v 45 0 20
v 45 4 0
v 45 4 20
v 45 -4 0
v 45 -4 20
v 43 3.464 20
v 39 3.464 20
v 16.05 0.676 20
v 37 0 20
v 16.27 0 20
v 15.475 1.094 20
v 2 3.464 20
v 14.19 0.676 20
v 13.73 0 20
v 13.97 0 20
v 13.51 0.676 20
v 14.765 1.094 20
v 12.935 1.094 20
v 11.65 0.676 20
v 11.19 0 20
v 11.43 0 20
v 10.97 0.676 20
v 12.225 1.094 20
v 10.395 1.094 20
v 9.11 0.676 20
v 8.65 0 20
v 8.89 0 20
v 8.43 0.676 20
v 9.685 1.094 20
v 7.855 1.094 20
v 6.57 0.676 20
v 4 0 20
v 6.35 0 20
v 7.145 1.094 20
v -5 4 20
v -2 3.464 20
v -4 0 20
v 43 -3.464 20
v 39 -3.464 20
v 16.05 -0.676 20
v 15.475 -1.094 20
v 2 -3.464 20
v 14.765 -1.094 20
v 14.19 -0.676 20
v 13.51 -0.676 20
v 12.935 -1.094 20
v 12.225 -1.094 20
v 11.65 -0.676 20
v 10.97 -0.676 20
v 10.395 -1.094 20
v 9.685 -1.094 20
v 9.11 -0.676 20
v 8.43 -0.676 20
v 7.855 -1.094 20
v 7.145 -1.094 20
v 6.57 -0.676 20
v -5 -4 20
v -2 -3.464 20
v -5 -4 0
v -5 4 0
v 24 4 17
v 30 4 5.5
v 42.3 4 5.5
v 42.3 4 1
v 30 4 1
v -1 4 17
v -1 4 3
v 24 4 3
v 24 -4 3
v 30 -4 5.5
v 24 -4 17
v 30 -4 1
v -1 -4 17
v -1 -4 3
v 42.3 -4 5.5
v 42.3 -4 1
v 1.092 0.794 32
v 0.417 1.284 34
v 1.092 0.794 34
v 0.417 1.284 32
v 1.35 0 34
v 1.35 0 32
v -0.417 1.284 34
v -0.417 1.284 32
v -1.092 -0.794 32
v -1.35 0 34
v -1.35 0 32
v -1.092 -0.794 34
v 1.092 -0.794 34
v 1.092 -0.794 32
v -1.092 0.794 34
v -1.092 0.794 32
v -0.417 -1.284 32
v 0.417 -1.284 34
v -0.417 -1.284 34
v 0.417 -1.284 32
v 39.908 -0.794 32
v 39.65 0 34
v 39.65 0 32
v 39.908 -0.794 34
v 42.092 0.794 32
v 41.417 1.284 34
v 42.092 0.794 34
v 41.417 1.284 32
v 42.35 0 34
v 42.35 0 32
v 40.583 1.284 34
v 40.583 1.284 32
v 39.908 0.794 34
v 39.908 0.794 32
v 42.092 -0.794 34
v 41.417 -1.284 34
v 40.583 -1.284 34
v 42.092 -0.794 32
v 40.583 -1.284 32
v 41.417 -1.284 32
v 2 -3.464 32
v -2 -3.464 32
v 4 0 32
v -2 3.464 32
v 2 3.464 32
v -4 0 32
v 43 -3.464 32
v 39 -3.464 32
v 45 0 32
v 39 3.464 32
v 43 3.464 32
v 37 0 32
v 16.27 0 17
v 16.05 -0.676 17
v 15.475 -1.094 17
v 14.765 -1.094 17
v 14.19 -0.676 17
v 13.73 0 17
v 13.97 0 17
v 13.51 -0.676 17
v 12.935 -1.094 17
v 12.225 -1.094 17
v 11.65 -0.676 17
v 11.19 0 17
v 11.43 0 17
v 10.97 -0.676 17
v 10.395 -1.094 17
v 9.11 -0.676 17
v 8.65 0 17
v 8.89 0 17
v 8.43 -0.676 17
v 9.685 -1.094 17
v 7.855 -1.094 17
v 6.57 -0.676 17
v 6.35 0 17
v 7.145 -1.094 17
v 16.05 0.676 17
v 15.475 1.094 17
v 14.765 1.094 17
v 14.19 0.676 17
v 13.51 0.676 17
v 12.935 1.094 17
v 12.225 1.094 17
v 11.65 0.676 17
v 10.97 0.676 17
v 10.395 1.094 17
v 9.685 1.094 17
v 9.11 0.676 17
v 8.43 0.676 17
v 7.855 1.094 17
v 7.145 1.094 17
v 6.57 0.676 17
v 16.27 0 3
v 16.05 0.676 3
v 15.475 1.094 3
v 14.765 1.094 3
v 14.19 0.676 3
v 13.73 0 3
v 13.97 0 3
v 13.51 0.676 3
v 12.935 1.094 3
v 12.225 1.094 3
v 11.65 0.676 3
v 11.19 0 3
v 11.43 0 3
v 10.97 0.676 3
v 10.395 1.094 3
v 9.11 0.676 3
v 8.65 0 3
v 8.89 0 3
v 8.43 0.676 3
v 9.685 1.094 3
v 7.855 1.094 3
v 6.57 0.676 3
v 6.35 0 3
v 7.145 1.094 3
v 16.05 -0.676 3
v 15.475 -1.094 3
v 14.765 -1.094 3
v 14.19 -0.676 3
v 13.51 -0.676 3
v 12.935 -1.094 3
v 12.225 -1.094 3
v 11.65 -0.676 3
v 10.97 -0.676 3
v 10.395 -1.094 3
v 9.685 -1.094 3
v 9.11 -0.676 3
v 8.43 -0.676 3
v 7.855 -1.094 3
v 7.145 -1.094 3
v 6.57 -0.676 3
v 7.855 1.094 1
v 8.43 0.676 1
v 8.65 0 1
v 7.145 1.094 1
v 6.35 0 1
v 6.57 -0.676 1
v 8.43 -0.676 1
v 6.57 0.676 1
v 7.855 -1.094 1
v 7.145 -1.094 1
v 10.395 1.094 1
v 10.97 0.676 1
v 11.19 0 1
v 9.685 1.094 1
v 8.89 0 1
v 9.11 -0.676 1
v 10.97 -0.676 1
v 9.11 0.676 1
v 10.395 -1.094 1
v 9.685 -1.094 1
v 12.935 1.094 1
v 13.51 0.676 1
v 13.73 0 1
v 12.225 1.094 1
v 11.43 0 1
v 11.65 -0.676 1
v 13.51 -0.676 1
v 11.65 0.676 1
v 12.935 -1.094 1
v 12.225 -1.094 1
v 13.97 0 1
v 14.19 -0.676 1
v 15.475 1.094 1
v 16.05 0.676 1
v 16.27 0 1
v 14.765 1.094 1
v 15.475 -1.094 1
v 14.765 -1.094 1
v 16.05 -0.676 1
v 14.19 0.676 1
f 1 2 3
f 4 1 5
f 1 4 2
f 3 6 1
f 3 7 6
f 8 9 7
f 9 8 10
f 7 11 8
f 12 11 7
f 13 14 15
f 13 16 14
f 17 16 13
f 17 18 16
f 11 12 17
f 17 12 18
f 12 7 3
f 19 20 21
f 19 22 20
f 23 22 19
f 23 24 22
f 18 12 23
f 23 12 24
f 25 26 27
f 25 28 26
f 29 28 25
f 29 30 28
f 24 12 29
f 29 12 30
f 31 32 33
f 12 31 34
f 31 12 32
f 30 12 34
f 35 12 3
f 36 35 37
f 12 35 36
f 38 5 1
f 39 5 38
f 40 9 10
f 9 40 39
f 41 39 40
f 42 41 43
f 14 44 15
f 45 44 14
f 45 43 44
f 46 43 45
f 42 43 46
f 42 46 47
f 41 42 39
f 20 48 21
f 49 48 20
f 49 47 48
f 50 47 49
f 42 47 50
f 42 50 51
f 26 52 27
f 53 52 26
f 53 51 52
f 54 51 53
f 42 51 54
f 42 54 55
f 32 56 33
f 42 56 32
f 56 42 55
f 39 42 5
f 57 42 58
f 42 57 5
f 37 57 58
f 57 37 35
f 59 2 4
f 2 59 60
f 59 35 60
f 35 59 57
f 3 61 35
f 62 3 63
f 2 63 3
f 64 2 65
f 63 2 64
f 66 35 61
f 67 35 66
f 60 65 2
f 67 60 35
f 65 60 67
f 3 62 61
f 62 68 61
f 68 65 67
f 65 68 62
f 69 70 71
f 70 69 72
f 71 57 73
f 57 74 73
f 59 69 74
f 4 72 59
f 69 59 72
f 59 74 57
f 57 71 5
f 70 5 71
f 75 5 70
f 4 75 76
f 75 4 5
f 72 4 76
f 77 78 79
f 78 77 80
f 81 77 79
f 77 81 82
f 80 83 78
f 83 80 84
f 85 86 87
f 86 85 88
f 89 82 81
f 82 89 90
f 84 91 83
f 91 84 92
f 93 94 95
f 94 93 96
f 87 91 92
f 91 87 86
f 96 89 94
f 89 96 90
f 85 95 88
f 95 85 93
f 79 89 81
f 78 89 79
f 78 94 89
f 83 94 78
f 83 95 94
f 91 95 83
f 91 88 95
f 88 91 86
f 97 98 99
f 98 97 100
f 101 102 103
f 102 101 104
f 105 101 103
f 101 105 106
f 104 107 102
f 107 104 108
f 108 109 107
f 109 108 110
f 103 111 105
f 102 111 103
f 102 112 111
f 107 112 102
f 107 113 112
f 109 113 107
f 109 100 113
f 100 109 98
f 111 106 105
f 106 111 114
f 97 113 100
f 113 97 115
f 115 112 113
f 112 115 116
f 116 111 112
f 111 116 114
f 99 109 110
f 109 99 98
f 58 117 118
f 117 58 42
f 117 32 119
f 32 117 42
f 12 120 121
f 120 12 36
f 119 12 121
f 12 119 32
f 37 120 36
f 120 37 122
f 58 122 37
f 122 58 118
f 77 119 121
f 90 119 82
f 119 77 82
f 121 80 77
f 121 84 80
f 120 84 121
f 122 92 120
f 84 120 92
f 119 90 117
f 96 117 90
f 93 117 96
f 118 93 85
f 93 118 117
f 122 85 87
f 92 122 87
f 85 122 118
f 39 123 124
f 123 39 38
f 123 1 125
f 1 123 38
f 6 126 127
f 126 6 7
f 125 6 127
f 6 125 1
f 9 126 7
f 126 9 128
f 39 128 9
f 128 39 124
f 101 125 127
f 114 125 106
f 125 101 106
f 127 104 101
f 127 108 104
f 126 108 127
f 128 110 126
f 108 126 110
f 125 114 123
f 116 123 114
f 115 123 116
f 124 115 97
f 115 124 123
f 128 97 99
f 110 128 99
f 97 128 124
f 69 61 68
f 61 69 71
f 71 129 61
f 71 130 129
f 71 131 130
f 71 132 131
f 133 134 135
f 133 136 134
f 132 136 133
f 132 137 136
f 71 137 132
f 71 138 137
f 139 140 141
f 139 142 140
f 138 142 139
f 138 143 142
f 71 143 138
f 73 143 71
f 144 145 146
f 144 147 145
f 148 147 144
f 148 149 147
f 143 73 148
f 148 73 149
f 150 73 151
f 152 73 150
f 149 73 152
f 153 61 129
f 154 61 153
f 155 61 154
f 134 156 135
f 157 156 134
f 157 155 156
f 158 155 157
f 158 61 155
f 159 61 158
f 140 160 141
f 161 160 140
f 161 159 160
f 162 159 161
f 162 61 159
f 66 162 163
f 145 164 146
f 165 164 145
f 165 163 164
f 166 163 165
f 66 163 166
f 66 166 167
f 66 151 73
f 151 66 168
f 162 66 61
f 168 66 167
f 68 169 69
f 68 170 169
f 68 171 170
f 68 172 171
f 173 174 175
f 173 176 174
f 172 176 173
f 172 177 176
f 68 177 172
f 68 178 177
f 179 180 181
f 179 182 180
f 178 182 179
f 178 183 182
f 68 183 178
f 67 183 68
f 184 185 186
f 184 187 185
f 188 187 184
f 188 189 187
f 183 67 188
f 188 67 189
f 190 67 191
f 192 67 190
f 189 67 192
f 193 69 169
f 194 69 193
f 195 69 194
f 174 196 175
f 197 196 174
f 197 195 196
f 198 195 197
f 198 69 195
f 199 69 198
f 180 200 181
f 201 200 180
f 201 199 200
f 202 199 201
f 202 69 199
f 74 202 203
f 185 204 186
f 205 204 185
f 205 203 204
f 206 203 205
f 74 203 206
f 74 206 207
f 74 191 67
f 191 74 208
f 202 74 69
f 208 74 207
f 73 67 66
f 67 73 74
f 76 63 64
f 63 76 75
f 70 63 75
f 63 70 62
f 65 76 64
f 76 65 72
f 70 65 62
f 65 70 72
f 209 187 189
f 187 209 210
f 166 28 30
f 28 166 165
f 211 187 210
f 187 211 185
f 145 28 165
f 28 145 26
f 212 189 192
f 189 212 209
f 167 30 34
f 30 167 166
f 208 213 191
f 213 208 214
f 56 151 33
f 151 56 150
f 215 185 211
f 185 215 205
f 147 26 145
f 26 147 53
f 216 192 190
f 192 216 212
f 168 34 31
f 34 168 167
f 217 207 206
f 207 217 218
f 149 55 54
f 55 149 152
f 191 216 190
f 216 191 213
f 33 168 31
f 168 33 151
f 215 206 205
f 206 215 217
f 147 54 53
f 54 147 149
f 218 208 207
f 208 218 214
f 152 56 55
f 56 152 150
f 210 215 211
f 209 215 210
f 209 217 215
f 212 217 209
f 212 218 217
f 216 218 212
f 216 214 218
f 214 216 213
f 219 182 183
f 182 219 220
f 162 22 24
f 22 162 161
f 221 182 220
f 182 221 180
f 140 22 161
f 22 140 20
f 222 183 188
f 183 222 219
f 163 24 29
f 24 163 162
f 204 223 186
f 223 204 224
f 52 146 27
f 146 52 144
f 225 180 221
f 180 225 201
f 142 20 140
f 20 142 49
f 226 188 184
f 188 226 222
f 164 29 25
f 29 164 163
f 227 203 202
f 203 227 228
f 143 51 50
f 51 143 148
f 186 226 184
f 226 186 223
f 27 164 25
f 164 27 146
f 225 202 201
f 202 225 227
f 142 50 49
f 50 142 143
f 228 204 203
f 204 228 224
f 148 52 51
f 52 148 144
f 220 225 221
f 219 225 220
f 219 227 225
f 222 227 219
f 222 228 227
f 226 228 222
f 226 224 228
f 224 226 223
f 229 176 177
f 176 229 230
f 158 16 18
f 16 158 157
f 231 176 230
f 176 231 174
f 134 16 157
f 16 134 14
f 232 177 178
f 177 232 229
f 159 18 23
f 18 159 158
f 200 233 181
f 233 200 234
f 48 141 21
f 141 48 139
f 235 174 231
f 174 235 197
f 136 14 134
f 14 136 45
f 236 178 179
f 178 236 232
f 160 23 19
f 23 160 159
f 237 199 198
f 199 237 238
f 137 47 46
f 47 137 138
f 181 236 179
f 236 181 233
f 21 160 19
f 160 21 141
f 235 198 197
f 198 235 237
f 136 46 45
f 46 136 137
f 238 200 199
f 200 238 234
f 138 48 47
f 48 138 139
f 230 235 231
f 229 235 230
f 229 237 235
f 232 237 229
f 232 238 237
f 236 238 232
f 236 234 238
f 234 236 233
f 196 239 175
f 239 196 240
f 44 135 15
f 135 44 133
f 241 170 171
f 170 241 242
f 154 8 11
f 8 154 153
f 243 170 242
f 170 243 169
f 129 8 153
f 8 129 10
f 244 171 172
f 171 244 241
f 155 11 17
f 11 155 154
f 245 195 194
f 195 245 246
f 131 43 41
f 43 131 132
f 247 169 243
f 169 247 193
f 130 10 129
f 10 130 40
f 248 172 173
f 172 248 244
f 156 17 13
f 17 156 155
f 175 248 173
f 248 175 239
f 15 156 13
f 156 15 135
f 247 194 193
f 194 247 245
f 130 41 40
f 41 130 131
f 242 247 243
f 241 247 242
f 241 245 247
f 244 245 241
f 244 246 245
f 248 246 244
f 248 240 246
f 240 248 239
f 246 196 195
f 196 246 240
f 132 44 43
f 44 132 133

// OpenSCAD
difference(){
    union(){
        translate([-5,-4,0]) cube([50,8,20]);
        cylinder(h=32+2, r=1.5-0.15, $fn=10);
        translate([41,0,0]) cylinder(h=32+2, r=1.5-0.15, $fn=10);
        cylinder(h=32, r=4, $fn=6);
        translate([41,0,0]) cylinder(h=32, r=4, $fn=6);
    }
    translate([-1, -5, 3]) cube([25,10,14]);
    translate([30, -5, 1]) cube([12+0.3,10,4.5]);
    translate([7.5+2.54*0,0,1]) cylinder(h=30, r=1+0.15, $fn=10);
    translate([7.5+2.54*1,0,1]) cylinder(h=30, r=1+0.15, $fn=10);
    translate([7.5+2.54*2,0,1]) cylinder(h=30, r=1+0.15, $fn=10);
    translate([7.5+2.54*3,0,1]) cylinder(h=30, r=1+0.15, $fn=10);
}
